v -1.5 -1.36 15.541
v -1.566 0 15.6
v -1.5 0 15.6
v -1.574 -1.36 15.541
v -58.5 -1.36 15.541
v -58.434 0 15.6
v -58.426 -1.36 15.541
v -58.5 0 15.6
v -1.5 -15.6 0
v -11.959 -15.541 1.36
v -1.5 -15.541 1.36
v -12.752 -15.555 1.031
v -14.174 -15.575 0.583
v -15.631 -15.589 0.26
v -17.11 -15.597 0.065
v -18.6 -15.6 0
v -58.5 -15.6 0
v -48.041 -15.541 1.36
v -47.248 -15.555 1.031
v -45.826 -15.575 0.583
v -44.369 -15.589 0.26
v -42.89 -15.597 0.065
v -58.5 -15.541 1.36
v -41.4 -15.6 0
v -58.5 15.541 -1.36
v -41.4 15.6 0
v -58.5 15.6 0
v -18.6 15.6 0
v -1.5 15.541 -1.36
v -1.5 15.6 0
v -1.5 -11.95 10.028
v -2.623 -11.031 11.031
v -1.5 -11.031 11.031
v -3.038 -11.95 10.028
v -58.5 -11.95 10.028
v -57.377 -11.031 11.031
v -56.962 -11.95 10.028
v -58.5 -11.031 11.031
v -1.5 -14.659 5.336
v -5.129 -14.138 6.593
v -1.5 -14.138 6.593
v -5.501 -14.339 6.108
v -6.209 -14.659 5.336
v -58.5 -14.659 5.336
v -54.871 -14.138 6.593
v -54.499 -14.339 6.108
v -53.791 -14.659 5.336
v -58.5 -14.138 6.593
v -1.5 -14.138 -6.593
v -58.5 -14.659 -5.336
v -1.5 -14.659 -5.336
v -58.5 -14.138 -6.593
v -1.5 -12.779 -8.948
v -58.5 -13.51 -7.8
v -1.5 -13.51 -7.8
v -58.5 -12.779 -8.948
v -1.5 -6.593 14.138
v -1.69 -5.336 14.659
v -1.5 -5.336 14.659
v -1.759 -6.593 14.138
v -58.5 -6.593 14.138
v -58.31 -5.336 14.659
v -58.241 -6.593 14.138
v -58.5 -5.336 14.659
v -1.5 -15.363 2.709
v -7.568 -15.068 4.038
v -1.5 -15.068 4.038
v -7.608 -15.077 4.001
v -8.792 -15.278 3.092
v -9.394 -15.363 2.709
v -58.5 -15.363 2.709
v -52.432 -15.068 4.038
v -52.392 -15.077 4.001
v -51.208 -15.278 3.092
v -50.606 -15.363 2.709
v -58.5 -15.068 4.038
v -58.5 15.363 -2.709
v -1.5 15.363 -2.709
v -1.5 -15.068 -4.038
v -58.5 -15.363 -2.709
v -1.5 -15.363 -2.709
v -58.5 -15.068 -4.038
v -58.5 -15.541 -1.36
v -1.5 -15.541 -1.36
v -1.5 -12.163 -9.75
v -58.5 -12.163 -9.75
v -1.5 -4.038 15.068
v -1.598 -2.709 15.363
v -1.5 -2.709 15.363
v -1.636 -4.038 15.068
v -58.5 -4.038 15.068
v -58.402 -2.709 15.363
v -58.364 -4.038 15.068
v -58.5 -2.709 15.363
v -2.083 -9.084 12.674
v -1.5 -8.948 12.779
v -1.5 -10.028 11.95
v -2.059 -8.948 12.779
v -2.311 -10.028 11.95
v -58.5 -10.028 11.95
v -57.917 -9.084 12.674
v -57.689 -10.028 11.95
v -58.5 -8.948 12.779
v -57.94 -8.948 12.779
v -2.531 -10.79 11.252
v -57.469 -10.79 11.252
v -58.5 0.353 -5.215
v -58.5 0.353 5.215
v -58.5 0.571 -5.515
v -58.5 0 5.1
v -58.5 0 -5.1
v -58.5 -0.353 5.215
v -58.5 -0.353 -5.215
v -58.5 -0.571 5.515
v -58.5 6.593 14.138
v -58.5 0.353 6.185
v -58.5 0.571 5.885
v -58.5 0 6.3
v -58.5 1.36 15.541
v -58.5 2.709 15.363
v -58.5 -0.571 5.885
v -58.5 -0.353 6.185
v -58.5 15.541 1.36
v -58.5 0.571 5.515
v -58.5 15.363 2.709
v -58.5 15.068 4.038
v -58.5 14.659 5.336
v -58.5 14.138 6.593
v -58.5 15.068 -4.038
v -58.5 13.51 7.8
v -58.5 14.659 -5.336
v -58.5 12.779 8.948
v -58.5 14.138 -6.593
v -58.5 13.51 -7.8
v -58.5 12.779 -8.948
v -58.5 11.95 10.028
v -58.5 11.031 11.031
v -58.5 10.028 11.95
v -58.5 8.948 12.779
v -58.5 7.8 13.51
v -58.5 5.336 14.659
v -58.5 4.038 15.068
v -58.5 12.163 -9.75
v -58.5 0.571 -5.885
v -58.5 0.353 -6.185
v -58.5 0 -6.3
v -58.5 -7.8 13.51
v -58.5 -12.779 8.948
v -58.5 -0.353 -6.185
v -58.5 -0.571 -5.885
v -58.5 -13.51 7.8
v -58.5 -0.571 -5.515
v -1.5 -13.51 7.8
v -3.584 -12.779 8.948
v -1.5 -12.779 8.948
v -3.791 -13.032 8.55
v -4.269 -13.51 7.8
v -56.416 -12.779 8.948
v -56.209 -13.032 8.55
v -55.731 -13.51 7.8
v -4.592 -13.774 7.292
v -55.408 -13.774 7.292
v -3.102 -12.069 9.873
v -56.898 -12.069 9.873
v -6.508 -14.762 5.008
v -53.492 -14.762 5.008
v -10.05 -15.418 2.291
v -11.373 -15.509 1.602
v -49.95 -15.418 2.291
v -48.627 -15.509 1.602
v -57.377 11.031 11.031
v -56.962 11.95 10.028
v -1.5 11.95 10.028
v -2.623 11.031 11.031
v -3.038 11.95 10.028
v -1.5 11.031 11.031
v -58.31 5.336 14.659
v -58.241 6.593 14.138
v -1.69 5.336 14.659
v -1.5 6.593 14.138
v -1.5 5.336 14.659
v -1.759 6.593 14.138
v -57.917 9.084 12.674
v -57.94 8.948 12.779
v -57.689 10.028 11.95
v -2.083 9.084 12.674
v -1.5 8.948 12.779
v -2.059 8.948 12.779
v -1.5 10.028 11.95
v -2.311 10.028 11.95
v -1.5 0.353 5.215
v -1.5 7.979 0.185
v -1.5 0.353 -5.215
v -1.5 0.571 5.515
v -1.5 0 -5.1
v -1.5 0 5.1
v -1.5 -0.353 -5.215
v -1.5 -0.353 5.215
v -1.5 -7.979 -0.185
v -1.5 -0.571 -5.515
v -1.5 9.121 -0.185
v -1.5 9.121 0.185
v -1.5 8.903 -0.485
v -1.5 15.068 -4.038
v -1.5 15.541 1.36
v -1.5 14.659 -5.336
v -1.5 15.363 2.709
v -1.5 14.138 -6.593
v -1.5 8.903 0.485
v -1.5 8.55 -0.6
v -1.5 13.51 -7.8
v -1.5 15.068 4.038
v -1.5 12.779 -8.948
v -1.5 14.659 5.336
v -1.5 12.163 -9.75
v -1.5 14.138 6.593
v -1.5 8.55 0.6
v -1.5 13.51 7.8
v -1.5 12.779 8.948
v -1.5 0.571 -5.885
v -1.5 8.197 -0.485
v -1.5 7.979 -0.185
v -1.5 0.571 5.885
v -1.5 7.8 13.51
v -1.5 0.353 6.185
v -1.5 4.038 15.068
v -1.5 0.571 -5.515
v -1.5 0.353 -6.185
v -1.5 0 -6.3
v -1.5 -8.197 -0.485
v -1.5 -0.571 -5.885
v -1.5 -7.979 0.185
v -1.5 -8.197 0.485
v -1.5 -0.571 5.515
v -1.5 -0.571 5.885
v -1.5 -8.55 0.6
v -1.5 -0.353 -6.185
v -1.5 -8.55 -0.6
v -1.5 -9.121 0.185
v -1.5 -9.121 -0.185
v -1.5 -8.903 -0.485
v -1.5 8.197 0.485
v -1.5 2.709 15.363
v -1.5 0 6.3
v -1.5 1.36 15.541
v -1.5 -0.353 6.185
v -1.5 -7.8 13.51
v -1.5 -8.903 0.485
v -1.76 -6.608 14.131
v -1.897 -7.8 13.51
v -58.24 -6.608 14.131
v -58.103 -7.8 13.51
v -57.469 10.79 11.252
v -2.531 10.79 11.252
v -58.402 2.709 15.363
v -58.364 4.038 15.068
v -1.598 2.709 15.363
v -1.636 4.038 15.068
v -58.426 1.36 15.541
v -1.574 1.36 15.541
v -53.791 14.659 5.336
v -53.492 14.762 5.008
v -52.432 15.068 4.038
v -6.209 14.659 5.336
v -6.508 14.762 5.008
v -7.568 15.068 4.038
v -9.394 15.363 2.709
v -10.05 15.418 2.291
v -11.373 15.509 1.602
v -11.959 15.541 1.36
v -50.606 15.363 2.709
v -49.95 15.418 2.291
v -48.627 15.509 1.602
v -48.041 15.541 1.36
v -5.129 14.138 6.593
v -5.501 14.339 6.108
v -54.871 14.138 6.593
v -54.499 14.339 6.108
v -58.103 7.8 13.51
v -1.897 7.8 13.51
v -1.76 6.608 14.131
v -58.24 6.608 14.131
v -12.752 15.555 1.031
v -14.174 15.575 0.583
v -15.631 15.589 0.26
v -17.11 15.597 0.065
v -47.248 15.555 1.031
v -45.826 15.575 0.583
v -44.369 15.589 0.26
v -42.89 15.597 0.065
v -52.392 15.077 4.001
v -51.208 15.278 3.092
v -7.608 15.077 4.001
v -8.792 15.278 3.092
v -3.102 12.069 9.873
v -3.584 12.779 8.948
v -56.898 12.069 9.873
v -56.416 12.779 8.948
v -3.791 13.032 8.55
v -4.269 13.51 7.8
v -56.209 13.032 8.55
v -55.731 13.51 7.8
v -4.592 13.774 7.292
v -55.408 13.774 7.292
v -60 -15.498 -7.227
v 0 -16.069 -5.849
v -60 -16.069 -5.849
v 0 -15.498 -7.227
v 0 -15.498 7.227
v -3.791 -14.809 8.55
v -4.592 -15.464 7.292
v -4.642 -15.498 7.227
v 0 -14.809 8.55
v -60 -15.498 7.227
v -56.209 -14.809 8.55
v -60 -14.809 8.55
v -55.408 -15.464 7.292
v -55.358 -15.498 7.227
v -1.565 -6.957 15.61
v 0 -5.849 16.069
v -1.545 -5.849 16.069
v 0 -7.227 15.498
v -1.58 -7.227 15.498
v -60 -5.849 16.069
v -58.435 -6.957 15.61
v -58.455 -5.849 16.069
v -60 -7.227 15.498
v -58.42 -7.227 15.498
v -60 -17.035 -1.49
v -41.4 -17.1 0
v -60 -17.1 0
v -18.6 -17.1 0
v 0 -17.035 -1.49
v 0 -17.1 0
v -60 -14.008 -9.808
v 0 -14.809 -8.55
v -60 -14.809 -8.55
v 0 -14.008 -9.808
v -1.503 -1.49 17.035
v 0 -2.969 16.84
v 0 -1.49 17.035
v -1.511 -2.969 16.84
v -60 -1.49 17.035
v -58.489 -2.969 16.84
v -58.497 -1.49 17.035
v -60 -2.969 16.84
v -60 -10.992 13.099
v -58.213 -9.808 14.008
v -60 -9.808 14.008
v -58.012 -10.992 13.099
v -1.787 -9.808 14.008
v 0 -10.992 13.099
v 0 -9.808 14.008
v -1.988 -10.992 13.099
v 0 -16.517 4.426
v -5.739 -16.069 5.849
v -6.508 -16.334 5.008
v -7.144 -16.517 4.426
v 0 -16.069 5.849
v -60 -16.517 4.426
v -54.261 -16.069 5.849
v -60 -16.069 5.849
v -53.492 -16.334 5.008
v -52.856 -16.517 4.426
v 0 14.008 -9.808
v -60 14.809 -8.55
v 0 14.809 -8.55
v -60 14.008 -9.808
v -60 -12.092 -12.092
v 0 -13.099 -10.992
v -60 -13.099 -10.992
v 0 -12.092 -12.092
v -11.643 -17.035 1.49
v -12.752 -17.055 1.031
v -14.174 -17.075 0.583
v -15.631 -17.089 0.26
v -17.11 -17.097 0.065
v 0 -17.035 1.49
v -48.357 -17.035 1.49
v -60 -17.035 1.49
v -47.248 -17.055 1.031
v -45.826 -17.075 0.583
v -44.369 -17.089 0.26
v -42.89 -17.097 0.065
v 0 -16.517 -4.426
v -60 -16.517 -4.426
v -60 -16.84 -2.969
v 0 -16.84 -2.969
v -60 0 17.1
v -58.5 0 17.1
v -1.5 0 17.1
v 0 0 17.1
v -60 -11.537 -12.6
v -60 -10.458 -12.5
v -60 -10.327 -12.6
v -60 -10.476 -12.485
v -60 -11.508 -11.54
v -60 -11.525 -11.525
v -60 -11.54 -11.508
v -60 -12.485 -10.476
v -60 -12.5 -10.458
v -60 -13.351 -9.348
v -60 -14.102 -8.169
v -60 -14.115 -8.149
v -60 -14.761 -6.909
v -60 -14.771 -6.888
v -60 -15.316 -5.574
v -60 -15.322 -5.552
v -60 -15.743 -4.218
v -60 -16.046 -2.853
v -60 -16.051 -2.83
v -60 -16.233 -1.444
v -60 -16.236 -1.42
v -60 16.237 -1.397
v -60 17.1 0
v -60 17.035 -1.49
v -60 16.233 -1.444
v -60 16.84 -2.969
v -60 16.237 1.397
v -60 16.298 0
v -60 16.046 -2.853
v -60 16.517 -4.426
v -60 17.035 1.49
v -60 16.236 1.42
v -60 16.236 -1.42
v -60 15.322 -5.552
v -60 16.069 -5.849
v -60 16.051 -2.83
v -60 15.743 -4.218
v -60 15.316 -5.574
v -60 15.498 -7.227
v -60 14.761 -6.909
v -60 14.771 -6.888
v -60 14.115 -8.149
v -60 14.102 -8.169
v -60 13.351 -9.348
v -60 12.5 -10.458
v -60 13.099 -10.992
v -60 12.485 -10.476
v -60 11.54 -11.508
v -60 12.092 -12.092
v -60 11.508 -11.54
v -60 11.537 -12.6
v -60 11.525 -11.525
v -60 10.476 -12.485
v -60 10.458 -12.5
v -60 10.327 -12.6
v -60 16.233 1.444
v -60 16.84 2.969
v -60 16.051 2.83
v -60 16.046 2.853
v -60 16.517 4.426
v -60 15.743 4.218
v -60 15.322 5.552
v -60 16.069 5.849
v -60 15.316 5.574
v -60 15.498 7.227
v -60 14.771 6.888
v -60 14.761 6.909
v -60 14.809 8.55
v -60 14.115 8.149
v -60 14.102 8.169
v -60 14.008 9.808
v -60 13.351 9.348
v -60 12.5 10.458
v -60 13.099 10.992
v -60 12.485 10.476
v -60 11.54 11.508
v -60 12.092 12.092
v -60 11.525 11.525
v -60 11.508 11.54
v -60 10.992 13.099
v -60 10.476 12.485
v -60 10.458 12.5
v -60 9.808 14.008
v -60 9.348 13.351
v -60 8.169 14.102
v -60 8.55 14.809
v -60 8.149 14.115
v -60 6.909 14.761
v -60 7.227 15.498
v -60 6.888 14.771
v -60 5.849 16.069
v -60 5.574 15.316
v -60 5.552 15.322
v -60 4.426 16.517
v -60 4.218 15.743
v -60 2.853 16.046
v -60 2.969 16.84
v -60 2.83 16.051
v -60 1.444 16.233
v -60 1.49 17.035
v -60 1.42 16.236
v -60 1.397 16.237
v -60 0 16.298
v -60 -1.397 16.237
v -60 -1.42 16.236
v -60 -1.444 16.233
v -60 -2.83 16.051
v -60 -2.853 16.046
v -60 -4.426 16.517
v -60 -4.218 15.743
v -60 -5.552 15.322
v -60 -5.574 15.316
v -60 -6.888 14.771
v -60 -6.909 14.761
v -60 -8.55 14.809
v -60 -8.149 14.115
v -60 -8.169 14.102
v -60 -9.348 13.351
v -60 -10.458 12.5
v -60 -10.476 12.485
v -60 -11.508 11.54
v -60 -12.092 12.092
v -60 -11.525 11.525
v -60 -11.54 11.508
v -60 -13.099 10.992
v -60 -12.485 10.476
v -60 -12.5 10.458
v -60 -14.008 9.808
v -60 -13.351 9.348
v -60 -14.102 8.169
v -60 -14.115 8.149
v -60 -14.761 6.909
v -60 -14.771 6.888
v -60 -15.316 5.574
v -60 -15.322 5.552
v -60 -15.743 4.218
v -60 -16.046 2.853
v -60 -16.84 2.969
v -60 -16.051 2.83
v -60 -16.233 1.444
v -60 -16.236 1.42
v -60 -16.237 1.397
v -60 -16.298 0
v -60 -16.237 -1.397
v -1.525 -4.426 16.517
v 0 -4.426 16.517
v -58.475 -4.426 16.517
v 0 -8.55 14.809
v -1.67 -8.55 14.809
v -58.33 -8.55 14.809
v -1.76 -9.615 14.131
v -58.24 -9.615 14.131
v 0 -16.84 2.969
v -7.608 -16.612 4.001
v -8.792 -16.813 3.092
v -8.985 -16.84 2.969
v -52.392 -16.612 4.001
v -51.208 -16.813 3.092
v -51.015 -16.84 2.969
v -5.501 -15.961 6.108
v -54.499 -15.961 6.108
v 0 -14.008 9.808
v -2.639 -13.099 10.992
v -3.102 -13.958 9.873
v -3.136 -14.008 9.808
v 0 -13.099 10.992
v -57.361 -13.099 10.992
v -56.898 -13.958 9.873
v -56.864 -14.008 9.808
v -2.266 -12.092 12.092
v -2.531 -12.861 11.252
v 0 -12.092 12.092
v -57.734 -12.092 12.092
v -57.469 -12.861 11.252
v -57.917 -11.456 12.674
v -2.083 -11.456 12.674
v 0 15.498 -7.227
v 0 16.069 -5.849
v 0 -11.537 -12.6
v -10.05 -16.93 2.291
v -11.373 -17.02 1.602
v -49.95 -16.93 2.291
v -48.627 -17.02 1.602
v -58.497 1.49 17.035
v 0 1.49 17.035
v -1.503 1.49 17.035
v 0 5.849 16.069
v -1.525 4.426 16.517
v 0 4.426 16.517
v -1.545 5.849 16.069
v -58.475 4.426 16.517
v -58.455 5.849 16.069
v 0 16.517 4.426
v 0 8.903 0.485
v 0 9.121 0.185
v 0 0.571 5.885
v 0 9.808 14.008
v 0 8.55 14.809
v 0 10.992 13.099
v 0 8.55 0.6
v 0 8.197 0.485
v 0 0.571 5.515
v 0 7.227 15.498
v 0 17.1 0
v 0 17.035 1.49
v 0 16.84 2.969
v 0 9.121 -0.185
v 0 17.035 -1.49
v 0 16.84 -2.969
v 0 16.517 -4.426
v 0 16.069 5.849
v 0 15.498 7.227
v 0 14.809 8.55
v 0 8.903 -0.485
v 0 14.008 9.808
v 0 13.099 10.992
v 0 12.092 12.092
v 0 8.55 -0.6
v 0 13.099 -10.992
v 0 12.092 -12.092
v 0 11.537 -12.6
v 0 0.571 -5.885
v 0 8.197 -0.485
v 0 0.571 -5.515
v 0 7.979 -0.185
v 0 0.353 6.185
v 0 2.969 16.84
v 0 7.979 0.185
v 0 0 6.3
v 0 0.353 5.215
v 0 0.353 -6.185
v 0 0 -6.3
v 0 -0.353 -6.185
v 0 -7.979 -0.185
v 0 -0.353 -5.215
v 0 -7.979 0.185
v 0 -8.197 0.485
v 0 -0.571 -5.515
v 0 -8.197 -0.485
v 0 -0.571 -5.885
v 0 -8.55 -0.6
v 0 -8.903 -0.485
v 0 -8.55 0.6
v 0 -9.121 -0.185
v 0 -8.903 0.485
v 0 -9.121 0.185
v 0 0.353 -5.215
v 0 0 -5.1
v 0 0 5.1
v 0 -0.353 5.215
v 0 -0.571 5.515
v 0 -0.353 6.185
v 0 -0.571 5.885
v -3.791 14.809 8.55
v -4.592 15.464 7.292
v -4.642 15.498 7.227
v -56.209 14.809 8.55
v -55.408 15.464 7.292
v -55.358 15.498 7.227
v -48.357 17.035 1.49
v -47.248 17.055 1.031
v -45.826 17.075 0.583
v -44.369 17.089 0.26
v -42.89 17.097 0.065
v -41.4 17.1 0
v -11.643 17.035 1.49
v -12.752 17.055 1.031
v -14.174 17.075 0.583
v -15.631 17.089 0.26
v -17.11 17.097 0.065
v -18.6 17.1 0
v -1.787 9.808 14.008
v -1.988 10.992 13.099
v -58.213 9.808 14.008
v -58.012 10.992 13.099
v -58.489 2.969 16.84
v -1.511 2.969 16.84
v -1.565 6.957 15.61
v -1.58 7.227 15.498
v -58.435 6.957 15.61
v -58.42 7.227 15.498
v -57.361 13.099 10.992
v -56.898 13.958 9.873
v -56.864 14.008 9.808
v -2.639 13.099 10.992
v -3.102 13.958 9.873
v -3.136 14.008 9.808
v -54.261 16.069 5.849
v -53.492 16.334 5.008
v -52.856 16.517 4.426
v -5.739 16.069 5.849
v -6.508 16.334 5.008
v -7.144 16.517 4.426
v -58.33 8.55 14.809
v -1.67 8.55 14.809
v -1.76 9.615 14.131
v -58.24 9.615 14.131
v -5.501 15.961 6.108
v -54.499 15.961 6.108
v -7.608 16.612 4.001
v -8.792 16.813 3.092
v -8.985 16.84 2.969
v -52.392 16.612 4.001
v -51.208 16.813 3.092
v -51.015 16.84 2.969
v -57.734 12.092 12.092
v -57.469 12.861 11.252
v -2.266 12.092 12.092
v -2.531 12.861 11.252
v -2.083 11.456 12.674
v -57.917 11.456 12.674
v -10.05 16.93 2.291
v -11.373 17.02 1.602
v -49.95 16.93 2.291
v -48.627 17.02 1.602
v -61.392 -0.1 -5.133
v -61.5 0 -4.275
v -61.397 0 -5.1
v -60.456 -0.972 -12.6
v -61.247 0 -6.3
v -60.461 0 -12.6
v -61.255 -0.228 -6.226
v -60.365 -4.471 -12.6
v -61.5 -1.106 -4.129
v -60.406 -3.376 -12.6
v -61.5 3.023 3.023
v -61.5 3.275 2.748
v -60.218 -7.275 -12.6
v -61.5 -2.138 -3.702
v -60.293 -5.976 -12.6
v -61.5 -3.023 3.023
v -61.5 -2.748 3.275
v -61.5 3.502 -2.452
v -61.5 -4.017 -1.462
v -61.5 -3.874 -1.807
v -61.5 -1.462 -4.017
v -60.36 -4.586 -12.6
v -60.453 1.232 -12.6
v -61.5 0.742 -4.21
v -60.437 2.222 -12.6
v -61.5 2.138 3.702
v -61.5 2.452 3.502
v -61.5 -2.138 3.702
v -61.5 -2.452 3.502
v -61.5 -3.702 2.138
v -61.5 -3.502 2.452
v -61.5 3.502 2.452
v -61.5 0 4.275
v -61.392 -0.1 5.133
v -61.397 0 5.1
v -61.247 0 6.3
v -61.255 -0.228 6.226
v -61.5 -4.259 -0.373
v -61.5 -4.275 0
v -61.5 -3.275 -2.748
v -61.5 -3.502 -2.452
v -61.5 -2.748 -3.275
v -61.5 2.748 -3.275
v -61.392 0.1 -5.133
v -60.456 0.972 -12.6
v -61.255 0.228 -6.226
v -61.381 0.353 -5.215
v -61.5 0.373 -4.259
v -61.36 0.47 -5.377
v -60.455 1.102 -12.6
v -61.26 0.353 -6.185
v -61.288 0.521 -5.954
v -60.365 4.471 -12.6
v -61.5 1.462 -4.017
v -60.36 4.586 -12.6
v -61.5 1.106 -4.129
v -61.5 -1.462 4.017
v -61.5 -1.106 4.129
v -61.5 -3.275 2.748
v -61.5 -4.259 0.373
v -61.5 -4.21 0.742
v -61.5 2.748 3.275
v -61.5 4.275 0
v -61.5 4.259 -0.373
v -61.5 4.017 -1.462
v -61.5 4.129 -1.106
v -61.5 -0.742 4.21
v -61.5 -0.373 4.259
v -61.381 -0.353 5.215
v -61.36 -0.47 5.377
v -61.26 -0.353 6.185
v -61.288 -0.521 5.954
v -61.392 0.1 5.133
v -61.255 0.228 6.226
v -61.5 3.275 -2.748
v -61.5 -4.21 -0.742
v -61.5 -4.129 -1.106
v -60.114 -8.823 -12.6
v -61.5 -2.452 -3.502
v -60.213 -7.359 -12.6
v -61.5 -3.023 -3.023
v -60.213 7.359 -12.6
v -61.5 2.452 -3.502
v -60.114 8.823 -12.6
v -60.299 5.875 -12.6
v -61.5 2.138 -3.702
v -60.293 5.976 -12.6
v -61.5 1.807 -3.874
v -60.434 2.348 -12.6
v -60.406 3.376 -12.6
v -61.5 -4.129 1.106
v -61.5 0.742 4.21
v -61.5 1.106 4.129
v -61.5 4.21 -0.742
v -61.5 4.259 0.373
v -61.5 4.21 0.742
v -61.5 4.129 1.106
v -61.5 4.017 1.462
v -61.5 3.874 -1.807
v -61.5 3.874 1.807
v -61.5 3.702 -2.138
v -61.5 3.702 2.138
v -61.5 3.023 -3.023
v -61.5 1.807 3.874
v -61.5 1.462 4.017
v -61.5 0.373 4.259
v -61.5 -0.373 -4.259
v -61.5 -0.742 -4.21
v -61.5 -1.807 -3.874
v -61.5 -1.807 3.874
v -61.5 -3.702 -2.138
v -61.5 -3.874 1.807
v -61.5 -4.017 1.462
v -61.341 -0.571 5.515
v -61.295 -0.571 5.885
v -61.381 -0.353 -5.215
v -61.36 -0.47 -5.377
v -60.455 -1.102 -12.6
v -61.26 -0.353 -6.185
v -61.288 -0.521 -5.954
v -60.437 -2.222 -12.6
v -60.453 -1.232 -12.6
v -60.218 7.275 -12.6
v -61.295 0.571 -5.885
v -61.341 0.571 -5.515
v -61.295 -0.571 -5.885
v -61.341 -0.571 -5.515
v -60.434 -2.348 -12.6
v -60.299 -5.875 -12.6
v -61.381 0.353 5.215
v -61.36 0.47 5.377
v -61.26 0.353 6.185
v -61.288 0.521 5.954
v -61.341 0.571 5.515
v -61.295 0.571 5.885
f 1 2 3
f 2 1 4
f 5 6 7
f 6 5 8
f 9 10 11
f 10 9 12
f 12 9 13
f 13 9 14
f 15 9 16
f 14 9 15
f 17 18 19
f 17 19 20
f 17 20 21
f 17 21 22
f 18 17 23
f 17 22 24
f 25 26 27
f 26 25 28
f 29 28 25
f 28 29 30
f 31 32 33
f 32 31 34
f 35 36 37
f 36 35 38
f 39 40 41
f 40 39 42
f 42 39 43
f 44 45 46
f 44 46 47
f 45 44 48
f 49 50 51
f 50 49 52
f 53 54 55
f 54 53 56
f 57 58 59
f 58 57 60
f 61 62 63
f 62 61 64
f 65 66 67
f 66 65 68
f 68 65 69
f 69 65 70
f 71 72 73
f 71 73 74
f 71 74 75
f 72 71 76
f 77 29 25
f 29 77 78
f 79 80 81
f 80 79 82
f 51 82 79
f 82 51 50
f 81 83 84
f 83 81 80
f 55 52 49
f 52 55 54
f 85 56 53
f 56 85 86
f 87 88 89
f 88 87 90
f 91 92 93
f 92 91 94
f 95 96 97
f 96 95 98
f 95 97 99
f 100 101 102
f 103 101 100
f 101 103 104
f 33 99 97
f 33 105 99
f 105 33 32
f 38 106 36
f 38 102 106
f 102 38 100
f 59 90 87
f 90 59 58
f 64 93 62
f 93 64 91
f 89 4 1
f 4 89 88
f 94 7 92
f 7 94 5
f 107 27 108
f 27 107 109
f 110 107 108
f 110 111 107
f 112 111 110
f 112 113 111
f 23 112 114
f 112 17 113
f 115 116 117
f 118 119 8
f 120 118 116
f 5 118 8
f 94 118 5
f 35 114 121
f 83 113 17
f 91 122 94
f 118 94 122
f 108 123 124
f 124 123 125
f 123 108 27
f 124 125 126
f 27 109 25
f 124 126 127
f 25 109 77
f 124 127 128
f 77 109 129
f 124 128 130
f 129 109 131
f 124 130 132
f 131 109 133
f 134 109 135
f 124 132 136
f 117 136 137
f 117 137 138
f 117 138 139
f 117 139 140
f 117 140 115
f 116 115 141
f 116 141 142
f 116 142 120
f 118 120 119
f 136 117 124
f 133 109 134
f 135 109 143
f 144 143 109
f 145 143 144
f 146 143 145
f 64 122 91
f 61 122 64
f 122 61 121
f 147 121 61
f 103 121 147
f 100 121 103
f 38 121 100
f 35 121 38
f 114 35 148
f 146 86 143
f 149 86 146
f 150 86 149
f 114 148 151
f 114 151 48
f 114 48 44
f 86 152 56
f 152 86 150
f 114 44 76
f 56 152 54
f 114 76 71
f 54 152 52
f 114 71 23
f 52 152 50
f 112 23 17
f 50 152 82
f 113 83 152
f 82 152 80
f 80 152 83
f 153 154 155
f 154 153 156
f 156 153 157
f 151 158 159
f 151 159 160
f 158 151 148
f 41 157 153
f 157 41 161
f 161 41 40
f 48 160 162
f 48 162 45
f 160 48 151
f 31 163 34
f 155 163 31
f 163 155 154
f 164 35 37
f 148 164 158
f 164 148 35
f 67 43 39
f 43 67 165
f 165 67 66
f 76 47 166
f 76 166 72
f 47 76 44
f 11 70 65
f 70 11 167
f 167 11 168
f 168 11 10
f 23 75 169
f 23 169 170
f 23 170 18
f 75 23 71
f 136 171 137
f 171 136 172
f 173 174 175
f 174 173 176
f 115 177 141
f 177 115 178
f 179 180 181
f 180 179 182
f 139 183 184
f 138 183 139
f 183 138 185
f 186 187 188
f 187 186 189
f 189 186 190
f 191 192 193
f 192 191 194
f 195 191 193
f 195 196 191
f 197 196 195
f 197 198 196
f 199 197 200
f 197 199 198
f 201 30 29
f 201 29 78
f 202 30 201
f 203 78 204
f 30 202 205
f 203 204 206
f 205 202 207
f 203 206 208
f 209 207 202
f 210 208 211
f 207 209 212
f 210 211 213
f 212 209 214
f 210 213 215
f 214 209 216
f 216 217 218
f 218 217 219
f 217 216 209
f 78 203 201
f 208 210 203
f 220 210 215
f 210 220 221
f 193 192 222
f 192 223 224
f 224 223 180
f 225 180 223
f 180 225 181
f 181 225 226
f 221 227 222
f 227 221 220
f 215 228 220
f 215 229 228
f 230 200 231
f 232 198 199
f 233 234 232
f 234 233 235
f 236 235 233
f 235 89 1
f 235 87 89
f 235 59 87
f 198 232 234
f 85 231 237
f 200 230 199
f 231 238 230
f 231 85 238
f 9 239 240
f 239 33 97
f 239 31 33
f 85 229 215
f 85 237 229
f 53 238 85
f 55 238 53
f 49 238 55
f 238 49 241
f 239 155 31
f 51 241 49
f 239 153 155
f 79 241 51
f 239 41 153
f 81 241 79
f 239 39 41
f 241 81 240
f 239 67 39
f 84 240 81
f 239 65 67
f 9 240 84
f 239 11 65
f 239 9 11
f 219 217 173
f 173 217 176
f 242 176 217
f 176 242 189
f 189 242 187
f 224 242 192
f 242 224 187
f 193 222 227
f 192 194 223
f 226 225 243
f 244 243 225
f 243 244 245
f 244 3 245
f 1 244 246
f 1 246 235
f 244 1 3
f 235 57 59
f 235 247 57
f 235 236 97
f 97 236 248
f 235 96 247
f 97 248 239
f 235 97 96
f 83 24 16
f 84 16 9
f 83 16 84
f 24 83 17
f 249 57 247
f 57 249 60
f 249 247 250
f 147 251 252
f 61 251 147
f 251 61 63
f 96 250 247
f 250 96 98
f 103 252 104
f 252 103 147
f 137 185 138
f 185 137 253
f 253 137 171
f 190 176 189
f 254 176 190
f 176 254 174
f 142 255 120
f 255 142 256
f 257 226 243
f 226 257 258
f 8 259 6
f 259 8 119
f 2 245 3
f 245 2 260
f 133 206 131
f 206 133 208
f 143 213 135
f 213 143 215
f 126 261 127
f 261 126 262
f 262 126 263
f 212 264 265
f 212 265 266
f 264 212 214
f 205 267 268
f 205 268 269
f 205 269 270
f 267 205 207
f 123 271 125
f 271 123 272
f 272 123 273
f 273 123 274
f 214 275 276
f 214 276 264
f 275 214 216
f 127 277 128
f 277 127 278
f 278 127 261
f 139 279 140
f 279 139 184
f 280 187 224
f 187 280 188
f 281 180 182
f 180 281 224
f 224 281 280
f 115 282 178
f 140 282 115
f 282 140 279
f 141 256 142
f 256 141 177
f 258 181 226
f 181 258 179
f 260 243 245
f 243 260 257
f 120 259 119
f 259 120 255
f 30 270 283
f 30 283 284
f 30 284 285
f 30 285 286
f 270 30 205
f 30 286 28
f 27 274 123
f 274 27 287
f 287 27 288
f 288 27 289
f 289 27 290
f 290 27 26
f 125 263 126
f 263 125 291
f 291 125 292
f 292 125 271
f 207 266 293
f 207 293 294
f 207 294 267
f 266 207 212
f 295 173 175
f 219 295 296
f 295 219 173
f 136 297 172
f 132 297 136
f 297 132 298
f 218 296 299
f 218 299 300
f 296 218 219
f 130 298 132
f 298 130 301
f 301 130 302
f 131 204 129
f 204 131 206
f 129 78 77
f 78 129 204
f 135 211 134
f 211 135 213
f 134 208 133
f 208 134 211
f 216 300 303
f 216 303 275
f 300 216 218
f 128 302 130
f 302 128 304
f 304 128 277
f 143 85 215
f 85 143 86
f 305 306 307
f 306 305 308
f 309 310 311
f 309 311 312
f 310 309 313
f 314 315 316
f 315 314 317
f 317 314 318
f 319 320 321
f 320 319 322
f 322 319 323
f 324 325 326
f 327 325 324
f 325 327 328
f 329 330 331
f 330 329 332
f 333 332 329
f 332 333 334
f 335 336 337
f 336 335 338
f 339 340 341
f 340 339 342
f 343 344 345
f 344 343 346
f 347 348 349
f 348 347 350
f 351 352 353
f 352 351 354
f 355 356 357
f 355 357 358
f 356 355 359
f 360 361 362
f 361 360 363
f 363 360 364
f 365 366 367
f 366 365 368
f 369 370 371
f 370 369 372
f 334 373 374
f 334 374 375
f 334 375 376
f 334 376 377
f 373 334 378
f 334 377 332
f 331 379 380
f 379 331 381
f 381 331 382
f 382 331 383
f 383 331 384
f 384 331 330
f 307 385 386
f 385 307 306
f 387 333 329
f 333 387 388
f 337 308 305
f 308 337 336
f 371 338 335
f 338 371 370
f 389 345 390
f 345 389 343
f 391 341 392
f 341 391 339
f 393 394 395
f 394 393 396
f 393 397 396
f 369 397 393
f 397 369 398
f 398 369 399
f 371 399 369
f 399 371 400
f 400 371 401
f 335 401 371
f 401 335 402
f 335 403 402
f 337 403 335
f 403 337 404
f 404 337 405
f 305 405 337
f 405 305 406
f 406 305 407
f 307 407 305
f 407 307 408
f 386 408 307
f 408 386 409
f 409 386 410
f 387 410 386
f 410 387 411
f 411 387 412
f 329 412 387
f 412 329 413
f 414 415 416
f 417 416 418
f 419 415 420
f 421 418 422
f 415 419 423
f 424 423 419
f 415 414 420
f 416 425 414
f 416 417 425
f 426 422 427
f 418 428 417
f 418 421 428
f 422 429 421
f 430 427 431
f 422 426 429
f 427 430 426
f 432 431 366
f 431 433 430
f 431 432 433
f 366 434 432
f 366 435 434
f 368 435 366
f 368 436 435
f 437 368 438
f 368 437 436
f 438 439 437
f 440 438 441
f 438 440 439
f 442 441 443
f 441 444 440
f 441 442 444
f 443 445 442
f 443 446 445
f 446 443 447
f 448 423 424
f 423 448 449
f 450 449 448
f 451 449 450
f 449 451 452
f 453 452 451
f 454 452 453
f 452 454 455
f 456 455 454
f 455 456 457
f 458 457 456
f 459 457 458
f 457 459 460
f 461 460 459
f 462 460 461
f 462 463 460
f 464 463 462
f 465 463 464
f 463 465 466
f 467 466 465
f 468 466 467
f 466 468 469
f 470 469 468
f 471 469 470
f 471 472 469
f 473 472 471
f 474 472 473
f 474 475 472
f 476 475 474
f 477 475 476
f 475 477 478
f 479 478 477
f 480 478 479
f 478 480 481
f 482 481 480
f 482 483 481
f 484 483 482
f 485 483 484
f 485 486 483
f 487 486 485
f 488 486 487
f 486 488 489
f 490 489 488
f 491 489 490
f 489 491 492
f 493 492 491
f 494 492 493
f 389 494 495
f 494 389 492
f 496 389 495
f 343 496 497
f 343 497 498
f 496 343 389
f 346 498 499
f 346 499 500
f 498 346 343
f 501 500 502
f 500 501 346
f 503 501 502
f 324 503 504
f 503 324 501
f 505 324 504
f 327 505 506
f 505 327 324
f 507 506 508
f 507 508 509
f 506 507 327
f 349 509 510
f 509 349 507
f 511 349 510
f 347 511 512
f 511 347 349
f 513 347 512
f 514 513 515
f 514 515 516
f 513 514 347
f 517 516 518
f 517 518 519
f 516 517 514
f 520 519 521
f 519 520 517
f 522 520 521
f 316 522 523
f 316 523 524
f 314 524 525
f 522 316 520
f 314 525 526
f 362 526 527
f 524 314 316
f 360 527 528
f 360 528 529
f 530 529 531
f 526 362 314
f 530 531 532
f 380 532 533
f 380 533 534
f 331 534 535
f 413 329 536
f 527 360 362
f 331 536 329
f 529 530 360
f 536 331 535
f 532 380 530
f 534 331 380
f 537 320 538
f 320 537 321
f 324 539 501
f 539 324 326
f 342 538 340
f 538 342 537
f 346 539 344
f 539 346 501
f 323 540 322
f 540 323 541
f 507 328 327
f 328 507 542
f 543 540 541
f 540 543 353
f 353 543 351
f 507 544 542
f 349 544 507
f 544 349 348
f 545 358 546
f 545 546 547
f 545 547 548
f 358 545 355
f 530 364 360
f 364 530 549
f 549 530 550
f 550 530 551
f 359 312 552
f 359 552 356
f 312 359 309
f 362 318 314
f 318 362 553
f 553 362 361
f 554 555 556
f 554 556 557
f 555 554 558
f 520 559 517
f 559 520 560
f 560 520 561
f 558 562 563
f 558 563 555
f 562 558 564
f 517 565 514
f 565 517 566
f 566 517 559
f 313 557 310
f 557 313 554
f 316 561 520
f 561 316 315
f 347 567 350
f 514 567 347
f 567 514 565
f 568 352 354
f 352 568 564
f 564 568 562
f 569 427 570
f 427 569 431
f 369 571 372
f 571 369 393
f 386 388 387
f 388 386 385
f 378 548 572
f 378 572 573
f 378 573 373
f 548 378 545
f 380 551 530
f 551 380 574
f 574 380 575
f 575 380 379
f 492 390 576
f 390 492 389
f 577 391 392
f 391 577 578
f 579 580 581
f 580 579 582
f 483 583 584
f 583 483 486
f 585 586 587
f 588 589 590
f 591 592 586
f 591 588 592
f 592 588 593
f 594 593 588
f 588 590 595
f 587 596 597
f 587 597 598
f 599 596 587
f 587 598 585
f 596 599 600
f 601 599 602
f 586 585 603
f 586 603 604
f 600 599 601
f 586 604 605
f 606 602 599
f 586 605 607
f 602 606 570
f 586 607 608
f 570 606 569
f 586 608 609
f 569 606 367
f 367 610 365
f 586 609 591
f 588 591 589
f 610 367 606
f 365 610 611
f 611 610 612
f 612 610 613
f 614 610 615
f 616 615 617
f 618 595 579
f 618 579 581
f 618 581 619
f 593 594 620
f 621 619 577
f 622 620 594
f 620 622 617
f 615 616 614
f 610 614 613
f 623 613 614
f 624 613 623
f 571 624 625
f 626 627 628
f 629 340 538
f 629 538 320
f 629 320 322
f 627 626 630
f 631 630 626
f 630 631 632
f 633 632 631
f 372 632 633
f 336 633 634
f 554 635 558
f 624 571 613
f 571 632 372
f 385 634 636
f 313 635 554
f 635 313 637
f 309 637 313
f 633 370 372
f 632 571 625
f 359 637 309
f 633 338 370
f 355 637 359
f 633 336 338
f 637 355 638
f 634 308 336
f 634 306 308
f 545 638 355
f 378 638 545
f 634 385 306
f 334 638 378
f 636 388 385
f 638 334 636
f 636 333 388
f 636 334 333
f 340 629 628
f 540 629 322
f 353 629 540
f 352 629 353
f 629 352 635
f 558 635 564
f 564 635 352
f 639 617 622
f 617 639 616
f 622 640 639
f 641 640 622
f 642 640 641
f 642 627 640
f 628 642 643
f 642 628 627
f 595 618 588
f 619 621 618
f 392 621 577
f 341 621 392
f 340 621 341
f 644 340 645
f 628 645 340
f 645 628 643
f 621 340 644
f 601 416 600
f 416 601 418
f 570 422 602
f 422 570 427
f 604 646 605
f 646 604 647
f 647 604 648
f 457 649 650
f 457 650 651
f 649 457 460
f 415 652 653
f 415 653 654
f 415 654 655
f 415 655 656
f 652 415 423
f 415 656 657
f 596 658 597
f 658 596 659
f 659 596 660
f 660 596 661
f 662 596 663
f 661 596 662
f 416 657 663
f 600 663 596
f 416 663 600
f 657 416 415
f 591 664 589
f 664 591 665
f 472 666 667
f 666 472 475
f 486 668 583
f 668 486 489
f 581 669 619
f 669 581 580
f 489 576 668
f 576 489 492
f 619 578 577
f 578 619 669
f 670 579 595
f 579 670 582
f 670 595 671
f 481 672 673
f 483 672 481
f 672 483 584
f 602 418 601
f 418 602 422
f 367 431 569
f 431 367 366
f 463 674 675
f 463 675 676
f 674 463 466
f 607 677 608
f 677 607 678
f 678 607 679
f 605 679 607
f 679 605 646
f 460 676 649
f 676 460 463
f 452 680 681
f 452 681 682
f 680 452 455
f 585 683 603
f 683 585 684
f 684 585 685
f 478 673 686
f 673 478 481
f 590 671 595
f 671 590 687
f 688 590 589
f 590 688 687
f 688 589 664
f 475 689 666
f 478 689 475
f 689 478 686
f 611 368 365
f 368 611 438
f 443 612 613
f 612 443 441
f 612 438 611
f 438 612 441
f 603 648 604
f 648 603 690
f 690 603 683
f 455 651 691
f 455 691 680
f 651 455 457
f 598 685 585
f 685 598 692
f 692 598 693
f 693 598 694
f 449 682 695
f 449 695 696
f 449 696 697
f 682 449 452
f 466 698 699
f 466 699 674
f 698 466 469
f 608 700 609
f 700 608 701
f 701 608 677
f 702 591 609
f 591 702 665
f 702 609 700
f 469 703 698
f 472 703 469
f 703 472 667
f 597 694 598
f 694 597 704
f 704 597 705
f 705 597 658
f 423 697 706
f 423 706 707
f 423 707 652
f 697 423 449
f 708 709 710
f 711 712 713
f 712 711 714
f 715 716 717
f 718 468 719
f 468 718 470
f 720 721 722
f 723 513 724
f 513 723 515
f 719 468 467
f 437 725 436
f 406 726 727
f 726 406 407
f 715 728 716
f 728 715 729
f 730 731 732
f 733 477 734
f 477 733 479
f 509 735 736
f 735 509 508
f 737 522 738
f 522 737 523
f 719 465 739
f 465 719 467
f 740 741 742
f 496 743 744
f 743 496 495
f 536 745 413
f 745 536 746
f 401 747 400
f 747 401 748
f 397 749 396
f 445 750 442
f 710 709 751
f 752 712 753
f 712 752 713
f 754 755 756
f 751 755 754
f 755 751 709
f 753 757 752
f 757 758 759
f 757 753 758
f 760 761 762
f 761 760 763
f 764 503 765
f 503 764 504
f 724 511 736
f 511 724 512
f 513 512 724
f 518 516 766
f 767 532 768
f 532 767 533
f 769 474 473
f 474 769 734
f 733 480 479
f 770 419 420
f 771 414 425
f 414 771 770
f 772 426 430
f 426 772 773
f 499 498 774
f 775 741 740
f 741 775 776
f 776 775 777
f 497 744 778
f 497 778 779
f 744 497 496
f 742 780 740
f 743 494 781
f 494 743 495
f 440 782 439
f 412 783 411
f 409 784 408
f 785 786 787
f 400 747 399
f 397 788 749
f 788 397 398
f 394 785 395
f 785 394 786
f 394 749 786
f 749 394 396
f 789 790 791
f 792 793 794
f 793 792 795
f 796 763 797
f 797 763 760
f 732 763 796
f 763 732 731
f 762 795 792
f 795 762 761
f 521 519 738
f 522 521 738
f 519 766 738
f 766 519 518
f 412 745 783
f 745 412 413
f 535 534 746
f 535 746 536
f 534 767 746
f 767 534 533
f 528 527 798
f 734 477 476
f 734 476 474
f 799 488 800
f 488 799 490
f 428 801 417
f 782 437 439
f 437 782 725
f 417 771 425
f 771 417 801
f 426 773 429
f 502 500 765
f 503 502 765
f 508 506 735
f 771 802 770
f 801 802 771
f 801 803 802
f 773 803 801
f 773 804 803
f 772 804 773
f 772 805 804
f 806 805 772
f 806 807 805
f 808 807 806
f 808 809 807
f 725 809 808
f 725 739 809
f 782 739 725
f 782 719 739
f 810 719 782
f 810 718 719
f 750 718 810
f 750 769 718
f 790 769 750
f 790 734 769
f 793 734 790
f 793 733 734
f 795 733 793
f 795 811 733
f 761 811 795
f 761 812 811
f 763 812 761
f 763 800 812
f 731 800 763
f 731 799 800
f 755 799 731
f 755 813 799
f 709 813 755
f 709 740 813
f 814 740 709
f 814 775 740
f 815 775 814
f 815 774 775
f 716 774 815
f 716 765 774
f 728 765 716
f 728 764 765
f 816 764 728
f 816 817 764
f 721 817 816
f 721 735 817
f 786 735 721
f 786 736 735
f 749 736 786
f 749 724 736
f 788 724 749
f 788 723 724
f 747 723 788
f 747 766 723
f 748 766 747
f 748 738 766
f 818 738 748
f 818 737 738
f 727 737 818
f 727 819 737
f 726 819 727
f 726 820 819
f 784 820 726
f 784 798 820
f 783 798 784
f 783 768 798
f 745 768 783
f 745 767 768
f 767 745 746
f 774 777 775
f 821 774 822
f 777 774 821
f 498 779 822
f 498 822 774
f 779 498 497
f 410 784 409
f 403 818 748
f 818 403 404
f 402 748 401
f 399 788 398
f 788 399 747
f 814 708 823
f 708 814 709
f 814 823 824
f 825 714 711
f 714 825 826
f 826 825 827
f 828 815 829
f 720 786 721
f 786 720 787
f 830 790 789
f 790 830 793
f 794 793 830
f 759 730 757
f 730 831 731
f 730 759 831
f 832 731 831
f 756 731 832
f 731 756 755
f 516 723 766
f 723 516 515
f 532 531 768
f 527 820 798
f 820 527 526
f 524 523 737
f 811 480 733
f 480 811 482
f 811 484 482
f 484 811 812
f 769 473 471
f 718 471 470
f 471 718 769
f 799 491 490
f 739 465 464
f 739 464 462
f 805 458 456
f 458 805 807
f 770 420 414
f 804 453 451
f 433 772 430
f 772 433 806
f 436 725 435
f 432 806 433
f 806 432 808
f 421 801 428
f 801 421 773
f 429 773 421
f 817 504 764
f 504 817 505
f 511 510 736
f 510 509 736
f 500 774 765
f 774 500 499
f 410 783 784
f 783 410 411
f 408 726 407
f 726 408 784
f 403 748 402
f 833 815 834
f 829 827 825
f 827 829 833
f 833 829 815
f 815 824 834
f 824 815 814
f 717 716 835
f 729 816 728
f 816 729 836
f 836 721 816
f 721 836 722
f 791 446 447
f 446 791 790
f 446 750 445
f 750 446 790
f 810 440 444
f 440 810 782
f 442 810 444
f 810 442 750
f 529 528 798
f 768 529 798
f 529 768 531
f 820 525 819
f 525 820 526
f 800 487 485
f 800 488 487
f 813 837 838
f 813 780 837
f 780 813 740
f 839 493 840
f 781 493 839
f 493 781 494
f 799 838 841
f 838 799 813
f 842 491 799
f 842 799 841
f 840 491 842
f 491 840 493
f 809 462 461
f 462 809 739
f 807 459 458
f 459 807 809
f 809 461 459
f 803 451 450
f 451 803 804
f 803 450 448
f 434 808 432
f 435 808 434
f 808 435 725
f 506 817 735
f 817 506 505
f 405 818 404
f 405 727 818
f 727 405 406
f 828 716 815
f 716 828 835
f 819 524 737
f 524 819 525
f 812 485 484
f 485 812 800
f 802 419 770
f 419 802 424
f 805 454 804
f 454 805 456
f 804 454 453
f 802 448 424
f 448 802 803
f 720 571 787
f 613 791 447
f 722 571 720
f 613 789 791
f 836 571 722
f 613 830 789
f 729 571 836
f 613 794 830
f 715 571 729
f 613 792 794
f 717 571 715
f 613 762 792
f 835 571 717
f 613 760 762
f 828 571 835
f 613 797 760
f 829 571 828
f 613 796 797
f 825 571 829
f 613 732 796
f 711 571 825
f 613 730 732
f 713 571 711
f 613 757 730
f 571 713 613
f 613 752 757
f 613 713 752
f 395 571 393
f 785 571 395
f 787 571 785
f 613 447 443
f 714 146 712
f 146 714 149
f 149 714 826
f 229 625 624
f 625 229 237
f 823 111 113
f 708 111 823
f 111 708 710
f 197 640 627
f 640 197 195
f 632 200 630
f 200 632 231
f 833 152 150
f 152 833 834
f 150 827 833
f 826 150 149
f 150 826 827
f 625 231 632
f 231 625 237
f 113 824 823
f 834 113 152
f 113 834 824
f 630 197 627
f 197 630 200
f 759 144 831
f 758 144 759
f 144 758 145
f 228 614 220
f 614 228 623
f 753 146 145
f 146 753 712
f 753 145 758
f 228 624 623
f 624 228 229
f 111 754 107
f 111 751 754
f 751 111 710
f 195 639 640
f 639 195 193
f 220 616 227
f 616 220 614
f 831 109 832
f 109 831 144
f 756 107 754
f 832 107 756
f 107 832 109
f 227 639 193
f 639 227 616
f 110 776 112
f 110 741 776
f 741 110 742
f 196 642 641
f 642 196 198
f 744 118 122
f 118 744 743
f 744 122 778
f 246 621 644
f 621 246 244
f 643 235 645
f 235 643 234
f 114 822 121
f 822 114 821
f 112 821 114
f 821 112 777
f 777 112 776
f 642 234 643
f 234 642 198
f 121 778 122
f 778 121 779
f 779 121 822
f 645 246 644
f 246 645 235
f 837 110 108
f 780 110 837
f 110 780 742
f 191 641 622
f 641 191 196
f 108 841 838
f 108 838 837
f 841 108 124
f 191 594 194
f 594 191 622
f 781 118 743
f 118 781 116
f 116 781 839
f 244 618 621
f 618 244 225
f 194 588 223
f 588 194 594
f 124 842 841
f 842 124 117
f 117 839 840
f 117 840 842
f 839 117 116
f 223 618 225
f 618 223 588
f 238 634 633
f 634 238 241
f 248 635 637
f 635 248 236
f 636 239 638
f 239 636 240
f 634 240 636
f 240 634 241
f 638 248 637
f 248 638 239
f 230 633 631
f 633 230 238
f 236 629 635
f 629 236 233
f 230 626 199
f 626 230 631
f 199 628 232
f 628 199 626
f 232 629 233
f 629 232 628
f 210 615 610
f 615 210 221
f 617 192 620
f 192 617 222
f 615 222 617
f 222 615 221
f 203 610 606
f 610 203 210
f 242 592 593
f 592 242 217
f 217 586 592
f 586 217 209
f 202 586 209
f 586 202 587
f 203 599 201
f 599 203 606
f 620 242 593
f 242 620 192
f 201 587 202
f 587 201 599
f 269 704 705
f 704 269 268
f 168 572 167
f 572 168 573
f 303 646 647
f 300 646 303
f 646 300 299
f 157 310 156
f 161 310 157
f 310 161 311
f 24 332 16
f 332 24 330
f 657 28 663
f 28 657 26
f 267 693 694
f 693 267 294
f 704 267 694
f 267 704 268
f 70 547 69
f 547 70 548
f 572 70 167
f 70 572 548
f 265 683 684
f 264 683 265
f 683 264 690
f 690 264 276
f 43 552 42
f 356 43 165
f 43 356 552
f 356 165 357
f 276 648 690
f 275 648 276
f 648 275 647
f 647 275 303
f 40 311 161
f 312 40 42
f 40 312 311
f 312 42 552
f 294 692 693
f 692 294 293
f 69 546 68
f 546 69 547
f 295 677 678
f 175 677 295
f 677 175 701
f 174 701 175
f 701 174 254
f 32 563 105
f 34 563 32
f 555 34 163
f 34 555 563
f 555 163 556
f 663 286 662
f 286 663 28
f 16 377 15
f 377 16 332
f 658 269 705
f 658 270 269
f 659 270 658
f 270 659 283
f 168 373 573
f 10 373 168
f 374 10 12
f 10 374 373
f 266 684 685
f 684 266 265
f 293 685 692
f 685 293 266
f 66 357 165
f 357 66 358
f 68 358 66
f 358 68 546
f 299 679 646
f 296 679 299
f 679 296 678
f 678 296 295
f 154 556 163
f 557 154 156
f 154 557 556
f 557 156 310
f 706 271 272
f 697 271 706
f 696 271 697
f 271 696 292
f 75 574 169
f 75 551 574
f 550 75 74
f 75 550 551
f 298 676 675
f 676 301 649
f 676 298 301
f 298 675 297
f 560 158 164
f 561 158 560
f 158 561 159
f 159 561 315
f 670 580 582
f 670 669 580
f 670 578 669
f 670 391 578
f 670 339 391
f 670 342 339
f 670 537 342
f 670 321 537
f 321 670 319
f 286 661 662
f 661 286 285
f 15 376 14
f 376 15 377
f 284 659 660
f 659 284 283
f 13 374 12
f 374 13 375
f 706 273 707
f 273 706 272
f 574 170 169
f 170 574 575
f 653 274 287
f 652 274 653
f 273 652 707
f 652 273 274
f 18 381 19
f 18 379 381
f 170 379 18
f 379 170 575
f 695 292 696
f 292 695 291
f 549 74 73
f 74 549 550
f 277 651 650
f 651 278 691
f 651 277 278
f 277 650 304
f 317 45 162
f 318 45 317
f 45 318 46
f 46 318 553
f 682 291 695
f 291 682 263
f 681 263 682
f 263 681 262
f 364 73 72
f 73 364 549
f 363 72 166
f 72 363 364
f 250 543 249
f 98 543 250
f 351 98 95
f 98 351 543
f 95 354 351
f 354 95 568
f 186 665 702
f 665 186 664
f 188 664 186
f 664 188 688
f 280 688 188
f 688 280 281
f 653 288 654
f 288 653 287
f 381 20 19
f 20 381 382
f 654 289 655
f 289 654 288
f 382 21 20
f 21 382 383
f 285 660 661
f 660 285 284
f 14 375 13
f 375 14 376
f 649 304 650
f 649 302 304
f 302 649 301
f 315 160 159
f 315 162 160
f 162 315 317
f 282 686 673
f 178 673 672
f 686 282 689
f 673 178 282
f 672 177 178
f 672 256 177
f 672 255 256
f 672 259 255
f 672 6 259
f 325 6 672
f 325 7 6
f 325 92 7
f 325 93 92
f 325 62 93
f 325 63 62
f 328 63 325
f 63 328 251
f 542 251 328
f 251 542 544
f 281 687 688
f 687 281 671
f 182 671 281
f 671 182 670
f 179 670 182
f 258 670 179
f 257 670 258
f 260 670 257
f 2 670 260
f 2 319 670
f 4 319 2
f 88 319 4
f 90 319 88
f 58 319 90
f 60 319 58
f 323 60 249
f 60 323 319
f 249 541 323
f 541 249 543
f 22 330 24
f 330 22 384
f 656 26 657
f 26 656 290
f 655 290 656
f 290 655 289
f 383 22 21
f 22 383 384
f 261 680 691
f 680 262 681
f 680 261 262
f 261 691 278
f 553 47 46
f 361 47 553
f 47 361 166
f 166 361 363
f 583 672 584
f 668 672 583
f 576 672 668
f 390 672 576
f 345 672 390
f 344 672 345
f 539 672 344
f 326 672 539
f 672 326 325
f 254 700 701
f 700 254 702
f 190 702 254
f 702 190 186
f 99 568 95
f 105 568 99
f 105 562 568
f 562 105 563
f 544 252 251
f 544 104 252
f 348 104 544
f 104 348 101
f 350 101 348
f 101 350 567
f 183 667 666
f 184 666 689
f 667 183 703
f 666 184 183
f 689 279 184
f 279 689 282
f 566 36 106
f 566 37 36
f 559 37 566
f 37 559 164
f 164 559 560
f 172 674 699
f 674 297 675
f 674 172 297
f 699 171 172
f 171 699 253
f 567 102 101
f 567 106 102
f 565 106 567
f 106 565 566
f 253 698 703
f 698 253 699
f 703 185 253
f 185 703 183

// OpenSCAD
// Customizable Dummy Battery (AAA, AA, C, D, user defined)(Remixed)
// Original author by Eansdar https://www.thingiverse.com/thing:2650806/
// Remixed by mofosyne to print as one piece avoiding overhangs
////////////////////////////////////////////////////////////////////////////////
//
// https://en.wikipedia.org/wiki/List_of_battery_sizes
//
// https://en.wikipedia.org/wiki/AA_battery
// An AA cell measures 49.2-50.5 mm (1.94-1.99 in) in length, including the
// button terminal-and 13.5-14.5 mm (0.53-0.57 in) in diameter. The positive
// terminal button should be a minimum 1 mm high and a maximum 5.5 mm in
// diameter, the flat negative terminal should be a minimum diameter of 7 mm
//
// https://en.wikipedia.org/wiki/AAA_battery
// A triple-A battery is a single cell and measures 10.5 mm in diameter and
// 44.5 mm in length, including the positive terminal button, which is a
// minimum 0.8 mm high. The positive terminal has a maximum diameter of 3.8 mm;
// the flat negative terminal has a minimum diameter of 4.3 mm.
//
// A 'C' battery measures 50 millimetres (1.97 in) length and 26.2 millimetres
// (1.03 in) diameter.
//
////////////////////////////////////////////////////////////////////////////////

battery_type    = "D" ; // [AAA,AA,C,D,Generic,Demo]

/* [Settings for Generic Battery (mm)] */
body_radius     =  7.0 ; // [4:0.1:20]
body_height     = 48.4 ; // [35:0.1:60]
body_wall_width =  1.2 ; // [0.7:0.1:5]
pin_height      =  1.0 ; // [0.7:0.1:2.5]
wire_diameter   =  1.2 ; // [0.7:0.1:2]

////////////////////////////////////////////////////////////////////////////////

/* [Hidden] */

// column index into Batt
cName   = 0 ; // name
cRadius = 1 ; // body radius
cHeight = 2 ; // body height
cWidth  = 3 ; // wall width
cPin    = 4 ; // pin height
cWire   = 5 ; // wire diameter

/*
  D   Overall Length: 61.5mm (http://data.energizer.com/pdfs/e95.pdf)
  C   Overall Length: 50.0mm (http://data.energizer.com/pdfs/e93.pdf)
  AA  Overall Length: 50.5mm (http://data.energizer.com/pdfs/e91.pdf)
  AAA Overall Length: 44.5mm (http://data.energizer.com/pdfs/l92.pdf)
*/

// Note: Battery length is the height of the battery body and plus the pin height.
Batt =
[ // name, radi, heig, wid, pin, wire
  [ "D"  , 17.1, 60.0, 1.5, 1.5, 1.2 ],
  [ "C"  , 13.1, 48.5, 1.5, 1.5, 1.2 ],
  [ "AA" ,  7  , 49.5, 1.2, 1  , 1.2 ],
  [ "AAA",  5.2, 43.7, 1  , 0.8, 1.2 ]
] ;

$fa =  5 ;
$fs =  0.4 ;

////////////////////////////////////////////////////////////////////////////////

module battery(batt)
{
  difference()
  {
    union()
    {
      cylinder(h=batt[cHeight], r=batt[cRadius]); // outer
      translate([0,0,batt[cHeight]-0.1])
      {
	cylinder(h=batt[cPin]+0.1, r1=batt[cRadius], r2=batt[cRadius]/4 ) ; // pin on top
      }
    }
    
    /* Inner Hollow */
    difference()
    {
      translate([0, 0, batt[cWidth]]) cylinder(h=batt[cHeight]-2*batt[cWidth], r=batt[cRadius]-batt[cWidth]) ;  // inner
      translate([+batt[cRadius]/2+batt[cWire], -batt[cRadius], 0]) cube([(batt[cRadius])/2,2*(batt[cRadius]),batt[cHeight]]);
    }

    /* Base */
    translate([+batt[cRadius]*2/3+batt[cWire], -batt[cRadius], -1]) cube([(batt[cRadius])/2,2*(batt[cRadius]),batt[cHeight]+2]);
    
    /* Wires */
    translate([ batt[cRadius]/3, 0,-batt[cRadius]]) { cylinder(h=batt[cHeight]  +2*batt[cRadius], d=batt[cWire]) ; } // wire 1
    translate([-batt[cRadius]/3, 0,-batt[cRadius]]) { cylinder(h=batt[cHeight]  +2*batt[cRadius], d=batt[cWire]) ; } // wire 2
    translate([0, batt[cRadius]/2,-batt[cRadius]])  { cylinder(h=batt[cHeight]/2+2*batt[cRadius], d=batt[cWire]) ; } // neg terminal wire 3
    translate([0,-batt[cRadius]/2,-batt[cRadius]])  { cylinder(h=batt[cHeight]/2+2*batt[cRadius], d=batt[cWire]) ; } // neg terminal wire 4

    /* Cut-Out */
    hull()
    {
      translate([-batt[cRadius], batt[cRadius], batt[cRadius]+batt[cWidth]])
        rotate([90,0,0])
        cylinder(h=2*batt[cRadius], r=batt[cRadius]) ;
      translate([-batt[cRadius], batt[cRadius], batt[cHeight]-batt[cRadius]-batt[cWidth]])
        rotate([90,0,0])
        cylinder(h=2*batt[cRadius], r=batt[cRadius]) ;
    }
  }
}

////////////////////////////////////////////////////////////////////////////////

module batteryType(battery_type, body_radius, body_height, body_wall_width, pin_height, wire_diameter)
{
  idx = search([battery_type], Batt) ;
  if (idx != [[]])
  {
    battery(Batt[idx[0]]) ;
  }
  else if (battery_type == "Demo")
  {
    iD   = search(["D"  ], Batt) ;   rD   = Batt[iD  [0]][cRadius] ;
    iC   = search(["C"  ], Batt) ;   rC   = Batt[iC  [0]][cRadius] ;
    iAA  = search(["AA" ], Batt) ;   rAA  = Batt[iAA [0]][cRadius] ;
    iAAA = search(["AAA"], Batt) ;   rAAA = Batt[iAAA[0]][cRadius] ;

    dD   =   rD                              ; translate([-rD  , dD  , 0]) batteryType("D"  ) ;
    dC   = 2*rD +   rC                  + 10 ; translate([-rC  , dC  , 0]) batteryType("C"  ) ;
    dAA  = 2*rD + 2*rC +   rAA          + 20 ; translate([-rAA , dAA , 0]) batteryType("AA" ) ;
    dAAA = 2*rD + 2*rC + 2*rAA +   rAAA + 30 ; translate([-rAAA, dAAA, 0]) batteryType("AAA") ;
  }
  else
  {
    battery(["Generic", body_radius, body_height, body_wall_width, pin_height, wire_diameter]) ;
  }
}

////////////////////////////////////////////////////////////////////////////////

rotate([0,0,180])
rotate([0, 90, 0])
  batteryType(battery_type, body_radius, body_height, body_wall_width, pin_height, wire_diameter) ;

////////////////////////////////////////////////////////////////////////////////
// EOF
////////////////////////////////////////////////////////////////////////////////
